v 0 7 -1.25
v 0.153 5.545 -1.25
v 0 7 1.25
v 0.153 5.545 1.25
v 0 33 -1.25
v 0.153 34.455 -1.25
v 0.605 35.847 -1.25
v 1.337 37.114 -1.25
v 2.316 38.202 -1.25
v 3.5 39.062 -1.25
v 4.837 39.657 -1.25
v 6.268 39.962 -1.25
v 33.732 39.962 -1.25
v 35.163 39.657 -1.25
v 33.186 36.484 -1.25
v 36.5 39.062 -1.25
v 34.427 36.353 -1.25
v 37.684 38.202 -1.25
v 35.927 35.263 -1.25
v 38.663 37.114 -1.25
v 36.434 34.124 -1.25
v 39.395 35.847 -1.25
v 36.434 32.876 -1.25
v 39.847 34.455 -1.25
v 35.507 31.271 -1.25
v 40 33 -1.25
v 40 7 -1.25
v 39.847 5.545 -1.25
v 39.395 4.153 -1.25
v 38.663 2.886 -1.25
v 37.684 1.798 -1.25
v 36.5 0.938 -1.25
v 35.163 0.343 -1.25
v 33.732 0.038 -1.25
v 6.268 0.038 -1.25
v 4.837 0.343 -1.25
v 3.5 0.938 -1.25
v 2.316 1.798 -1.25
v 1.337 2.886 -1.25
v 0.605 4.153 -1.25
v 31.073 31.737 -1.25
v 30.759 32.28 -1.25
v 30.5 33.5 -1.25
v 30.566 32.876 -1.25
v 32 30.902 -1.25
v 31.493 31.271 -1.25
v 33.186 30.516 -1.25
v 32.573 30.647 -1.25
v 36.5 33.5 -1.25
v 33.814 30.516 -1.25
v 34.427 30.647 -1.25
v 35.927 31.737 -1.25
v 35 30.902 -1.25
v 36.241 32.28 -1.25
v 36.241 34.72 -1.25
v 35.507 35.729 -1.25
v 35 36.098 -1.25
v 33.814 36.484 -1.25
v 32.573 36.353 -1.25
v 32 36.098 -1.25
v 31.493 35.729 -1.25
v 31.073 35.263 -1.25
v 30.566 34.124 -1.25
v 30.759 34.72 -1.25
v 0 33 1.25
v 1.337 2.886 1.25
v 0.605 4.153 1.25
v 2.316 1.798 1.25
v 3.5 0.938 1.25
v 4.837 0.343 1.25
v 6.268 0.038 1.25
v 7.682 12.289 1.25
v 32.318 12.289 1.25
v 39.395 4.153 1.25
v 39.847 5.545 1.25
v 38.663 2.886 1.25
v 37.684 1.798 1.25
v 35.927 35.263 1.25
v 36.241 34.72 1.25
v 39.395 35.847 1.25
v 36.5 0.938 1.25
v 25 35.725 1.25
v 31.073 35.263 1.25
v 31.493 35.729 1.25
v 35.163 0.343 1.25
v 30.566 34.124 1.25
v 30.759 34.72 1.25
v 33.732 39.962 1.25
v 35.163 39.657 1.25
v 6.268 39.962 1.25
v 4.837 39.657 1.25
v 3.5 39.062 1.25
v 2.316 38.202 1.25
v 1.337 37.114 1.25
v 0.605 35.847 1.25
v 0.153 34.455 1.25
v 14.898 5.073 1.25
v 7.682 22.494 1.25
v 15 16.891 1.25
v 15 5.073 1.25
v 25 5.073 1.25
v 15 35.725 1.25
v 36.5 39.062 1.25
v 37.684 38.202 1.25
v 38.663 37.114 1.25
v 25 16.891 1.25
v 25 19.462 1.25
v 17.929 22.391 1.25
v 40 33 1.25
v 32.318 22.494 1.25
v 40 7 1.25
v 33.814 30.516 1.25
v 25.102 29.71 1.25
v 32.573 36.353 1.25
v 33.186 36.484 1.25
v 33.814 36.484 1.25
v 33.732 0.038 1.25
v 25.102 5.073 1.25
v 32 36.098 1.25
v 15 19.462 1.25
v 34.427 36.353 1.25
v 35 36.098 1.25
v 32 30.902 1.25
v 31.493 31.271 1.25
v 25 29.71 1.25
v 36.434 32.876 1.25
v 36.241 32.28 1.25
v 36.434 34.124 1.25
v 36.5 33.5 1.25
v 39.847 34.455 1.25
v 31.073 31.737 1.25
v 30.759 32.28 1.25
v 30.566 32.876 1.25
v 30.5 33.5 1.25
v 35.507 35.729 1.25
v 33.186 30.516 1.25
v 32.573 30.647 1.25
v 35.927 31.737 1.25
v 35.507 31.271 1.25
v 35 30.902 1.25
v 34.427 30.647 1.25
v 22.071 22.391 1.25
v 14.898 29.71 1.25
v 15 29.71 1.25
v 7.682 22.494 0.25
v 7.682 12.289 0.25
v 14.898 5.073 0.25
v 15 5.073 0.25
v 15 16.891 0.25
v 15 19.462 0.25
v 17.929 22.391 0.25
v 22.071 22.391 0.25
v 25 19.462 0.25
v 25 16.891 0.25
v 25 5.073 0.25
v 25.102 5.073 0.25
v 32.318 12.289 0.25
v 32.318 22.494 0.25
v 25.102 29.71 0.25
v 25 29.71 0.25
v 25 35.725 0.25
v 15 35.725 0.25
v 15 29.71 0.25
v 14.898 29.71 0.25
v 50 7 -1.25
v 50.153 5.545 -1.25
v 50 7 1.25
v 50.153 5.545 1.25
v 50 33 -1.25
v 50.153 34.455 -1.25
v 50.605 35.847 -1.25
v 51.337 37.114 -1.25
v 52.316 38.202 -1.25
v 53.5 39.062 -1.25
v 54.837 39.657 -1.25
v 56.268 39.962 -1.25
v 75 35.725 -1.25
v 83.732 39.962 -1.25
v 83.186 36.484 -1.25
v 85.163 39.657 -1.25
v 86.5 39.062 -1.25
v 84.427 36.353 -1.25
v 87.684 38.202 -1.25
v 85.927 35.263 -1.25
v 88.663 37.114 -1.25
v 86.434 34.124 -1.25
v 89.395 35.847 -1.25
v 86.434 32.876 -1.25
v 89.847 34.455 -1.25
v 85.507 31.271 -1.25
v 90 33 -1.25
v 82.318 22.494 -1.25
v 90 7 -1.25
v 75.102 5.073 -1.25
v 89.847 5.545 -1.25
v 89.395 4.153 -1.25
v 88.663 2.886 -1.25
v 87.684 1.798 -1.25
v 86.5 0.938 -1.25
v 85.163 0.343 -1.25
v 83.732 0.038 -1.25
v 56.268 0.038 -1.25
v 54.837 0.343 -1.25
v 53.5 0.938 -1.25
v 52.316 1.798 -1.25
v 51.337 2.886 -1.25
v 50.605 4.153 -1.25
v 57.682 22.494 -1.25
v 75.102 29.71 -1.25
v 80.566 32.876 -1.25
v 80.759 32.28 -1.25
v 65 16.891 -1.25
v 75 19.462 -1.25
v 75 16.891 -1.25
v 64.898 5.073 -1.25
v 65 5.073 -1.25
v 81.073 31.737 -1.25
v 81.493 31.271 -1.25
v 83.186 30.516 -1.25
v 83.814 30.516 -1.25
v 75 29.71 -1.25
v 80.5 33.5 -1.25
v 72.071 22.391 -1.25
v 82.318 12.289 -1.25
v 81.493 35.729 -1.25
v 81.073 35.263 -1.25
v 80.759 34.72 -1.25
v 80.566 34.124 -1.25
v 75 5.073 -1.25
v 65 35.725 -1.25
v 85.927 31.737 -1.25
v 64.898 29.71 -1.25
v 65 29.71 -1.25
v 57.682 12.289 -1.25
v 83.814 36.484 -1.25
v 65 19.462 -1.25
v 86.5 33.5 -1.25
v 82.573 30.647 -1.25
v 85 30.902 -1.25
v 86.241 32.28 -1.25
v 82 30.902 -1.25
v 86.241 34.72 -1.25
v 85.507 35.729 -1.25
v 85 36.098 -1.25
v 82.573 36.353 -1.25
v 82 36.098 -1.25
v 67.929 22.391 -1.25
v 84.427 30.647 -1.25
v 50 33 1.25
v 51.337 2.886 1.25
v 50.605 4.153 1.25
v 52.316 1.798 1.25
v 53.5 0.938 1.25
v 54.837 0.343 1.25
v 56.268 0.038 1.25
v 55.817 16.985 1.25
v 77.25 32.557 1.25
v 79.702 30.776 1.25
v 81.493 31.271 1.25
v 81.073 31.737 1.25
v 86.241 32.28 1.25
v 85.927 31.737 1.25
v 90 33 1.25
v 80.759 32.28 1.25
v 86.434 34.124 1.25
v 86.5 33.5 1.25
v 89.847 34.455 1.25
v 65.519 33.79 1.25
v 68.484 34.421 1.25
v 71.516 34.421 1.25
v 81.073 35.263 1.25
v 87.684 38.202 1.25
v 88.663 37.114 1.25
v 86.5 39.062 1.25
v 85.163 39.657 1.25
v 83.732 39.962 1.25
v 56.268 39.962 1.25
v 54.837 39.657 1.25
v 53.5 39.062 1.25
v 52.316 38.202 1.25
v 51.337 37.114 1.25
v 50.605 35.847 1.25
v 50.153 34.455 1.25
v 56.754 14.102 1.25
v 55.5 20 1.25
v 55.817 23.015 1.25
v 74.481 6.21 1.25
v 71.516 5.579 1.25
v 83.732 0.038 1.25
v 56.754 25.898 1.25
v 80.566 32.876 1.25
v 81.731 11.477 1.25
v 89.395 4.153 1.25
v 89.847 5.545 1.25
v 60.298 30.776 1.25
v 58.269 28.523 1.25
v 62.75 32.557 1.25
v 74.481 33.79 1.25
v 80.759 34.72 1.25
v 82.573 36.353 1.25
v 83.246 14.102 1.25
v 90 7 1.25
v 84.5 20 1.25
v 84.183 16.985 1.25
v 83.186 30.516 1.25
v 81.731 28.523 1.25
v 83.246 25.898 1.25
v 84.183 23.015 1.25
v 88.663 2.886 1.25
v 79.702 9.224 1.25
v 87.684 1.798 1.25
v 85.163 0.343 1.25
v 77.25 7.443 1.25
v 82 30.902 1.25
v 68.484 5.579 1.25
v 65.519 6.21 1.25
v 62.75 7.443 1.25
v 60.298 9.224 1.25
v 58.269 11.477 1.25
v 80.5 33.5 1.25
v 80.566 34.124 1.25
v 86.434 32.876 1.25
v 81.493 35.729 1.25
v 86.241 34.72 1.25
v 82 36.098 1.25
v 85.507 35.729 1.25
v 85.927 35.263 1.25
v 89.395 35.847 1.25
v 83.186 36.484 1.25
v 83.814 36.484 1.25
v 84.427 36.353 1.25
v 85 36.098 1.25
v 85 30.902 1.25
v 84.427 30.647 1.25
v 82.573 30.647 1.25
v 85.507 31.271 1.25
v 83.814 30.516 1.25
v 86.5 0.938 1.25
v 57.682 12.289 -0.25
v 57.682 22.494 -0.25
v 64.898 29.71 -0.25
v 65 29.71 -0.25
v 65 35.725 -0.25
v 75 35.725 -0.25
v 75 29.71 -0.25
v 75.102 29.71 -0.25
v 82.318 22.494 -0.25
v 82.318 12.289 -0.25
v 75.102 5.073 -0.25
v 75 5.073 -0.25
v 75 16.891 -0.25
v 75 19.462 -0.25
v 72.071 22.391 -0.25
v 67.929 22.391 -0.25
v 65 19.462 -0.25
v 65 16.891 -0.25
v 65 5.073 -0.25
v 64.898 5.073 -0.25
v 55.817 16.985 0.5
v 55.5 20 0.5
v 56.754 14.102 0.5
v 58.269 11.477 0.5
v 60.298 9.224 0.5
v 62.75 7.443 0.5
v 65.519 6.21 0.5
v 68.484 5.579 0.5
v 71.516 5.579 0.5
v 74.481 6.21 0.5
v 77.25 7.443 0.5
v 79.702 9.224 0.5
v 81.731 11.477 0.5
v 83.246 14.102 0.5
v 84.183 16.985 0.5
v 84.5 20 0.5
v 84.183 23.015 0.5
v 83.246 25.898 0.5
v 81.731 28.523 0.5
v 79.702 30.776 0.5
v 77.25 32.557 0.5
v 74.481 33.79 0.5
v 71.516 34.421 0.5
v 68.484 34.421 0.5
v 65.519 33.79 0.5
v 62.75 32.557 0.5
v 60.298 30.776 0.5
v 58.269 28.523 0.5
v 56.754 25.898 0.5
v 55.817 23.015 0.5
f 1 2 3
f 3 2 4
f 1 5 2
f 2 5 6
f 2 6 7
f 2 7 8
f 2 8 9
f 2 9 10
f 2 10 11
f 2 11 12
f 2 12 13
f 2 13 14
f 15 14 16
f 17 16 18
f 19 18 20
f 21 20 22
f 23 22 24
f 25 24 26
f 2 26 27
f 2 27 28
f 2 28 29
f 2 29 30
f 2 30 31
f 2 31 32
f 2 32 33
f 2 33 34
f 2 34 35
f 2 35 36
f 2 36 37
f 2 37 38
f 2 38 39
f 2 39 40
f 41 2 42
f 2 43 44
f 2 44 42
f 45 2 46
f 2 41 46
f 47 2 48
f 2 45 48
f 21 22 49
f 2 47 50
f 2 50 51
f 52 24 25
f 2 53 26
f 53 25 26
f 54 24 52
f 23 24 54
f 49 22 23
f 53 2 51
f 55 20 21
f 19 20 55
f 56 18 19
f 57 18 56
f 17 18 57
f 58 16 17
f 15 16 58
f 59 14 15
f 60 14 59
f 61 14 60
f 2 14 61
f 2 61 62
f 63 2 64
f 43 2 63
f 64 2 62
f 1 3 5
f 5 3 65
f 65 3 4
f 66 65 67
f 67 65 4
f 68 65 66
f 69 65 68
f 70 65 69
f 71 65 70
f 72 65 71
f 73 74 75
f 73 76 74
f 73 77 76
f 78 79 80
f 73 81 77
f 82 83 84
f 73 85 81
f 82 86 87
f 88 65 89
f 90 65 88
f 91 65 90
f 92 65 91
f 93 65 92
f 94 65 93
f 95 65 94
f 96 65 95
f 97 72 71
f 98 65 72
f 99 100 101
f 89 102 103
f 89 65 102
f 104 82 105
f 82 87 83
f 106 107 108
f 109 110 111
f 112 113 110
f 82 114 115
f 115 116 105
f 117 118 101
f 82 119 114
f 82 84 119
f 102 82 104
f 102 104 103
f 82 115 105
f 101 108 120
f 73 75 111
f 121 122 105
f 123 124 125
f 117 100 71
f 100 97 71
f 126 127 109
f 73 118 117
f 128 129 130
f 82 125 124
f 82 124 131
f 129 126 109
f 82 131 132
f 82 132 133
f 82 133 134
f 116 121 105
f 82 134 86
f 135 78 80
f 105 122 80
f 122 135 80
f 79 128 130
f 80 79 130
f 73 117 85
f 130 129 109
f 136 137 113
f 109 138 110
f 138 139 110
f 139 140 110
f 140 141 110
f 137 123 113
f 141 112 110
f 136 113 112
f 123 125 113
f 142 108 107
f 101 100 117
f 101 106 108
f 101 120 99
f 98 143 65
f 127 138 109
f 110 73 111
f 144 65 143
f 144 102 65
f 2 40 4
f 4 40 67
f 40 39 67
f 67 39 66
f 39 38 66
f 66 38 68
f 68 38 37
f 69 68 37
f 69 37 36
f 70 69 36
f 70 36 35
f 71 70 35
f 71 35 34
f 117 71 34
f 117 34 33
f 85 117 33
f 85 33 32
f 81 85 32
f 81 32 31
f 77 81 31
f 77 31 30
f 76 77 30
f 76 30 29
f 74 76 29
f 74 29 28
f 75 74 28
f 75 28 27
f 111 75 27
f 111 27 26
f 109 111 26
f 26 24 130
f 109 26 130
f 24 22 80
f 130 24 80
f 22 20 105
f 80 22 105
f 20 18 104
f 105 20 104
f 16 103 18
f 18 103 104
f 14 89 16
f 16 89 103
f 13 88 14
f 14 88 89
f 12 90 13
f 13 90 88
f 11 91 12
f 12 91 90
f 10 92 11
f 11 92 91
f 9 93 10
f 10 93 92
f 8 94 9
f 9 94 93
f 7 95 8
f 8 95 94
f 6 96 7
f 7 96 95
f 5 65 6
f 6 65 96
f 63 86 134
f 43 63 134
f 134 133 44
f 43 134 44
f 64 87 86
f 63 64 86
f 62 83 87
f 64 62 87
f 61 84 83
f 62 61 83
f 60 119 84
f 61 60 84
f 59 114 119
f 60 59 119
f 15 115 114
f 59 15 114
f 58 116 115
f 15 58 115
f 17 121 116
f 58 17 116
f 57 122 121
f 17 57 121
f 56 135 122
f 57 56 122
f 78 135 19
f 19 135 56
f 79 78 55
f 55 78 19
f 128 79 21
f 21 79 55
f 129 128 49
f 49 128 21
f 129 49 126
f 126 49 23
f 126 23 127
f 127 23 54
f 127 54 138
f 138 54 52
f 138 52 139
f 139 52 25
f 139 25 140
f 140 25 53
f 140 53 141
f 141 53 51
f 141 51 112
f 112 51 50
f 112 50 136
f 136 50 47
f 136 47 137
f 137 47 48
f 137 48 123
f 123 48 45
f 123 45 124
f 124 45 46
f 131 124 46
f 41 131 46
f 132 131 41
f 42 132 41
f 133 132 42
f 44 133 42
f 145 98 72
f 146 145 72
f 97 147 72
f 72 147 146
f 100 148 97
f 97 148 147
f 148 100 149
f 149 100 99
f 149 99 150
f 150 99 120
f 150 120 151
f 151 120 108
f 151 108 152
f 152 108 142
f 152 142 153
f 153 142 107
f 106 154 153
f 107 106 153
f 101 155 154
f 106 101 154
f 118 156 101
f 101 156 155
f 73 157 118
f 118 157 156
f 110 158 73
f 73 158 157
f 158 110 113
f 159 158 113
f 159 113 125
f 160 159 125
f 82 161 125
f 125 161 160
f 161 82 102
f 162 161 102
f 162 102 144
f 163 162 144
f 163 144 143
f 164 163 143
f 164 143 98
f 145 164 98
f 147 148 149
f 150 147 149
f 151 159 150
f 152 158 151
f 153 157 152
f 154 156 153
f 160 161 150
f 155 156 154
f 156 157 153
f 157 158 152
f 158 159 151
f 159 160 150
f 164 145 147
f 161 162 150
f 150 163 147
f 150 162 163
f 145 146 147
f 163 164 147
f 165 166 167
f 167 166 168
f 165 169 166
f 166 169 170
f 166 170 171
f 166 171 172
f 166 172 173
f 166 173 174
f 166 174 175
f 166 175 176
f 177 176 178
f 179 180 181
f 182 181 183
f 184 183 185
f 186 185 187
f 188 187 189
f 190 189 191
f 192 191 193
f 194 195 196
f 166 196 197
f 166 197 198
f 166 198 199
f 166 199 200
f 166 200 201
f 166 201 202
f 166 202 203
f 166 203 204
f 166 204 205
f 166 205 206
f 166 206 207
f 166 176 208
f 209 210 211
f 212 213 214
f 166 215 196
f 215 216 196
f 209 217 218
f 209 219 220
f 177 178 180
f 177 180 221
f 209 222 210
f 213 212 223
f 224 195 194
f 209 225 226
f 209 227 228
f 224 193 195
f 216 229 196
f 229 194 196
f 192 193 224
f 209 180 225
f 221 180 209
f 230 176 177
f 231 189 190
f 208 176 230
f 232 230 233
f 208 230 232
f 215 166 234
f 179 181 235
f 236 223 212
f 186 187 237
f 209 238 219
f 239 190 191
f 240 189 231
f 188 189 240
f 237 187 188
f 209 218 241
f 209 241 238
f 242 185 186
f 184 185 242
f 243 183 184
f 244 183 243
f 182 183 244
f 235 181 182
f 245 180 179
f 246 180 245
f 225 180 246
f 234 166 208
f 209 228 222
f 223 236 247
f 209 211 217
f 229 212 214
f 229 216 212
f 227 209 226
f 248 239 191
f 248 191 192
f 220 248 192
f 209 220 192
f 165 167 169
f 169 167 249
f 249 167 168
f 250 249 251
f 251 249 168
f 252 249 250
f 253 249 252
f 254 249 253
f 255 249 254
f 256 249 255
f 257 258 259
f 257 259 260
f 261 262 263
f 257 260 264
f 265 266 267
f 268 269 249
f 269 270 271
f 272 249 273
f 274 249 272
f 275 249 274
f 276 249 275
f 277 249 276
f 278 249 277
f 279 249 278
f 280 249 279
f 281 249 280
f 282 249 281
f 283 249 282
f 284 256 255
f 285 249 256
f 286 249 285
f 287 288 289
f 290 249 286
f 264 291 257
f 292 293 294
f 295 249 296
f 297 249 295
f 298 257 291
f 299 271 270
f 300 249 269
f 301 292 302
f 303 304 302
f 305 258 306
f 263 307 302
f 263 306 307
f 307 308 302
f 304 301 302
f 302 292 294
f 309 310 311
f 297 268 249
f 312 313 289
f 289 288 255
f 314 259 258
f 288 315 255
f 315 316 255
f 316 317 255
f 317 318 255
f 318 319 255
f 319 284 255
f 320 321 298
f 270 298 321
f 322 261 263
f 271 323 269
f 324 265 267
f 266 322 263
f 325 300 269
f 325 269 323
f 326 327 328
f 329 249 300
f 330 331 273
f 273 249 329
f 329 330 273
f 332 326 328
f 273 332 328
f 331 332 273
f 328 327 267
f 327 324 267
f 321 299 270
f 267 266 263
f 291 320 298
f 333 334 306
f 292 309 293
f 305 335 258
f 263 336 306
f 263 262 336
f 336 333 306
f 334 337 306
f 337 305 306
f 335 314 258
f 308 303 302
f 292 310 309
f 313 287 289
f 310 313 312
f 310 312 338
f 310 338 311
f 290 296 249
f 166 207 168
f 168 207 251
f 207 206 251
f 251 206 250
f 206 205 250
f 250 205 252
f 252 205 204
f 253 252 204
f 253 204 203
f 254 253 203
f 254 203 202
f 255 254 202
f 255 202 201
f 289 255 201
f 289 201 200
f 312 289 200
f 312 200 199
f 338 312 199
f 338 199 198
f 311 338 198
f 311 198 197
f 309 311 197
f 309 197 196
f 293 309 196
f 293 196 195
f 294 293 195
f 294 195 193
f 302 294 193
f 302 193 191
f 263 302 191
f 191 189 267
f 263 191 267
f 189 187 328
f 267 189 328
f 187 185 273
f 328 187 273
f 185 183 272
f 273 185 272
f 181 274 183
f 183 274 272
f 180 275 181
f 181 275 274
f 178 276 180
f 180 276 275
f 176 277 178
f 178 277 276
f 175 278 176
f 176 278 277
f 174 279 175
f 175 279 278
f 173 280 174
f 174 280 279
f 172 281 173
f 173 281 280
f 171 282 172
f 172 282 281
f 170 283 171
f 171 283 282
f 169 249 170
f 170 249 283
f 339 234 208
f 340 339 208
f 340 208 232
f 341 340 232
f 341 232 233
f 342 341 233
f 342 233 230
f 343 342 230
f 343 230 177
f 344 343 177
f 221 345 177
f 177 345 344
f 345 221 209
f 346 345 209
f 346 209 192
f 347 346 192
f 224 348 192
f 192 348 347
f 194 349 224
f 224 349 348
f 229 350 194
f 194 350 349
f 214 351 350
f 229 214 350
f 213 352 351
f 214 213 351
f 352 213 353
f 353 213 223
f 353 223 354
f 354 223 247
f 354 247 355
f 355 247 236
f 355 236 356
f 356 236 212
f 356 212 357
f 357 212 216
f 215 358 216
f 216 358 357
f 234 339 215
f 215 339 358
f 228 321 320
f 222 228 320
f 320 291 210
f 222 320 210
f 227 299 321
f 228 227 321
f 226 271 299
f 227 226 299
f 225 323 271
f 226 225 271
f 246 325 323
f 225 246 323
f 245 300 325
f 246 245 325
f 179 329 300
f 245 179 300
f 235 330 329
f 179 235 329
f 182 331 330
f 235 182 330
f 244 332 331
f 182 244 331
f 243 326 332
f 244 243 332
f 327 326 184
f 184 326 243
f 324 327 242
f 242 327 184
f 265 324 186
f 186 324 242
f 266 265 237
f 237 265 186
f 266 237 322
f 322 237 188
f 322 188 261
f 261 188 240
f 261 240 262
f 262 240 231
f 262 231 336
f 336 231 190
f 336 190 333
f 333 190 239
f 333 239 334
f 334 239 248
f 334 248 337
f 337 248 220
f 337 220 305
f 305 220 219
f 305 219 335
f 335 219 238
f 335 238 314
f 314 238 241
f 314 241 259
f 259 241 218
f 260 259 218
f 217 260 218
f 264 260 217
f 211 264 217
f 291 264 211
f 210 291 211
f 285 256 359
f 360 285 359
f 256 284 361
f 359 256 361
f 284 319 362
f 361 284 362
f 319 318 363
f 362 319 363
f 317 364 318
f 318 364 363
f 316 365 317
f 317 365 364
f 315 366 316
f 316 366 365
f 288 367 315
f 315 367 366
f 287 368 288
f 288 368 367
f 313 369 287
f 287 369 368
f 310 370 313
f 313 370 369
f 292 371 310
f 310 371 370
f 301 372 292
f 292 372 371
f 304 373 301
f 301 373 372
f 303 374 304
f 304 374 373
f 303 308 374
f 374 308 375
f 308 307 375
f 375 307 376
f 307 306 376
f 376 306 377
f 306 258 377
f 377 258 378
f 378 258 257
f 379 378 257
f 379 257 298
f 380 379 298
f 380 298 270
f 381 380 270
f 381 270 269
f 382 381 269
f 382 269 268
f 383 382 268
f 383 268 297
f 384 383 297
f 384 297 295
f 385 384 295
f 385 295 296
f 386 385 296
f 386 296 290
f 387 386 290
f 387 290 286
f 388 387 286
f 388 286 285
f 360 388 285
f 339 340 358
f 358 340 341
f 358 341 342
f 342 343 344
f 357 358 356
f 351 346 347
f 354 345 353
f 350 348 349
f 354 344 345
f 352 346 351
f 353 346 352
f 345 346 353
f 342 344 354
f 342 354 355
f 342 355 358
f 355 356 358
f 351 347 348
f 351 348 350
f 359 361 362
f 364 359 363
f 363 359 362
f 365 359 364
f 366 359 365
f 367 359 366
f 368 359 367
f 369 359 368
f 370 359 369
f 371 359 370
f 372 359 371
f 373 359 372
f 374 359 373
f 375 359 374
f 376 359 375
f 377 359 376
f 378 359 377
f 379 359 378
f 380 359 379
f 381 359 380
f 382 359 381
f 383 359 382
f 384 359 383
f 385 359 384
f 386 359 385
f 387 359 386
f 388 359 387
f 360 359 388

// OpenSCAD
/*
 * So Make It (http://www.somakeit.org.uk/) Logo Key Ring
 *
 * Copyright (c) 2013 Mark Hindess & Bracken Dawson
 * License:
 *   Creative Commons Attribution-ShareAlike 3.0 Unported License
 *   http://creativecommons.org/licenses/by-sa/3.0
 */

thickness = 2.5;
size = 40;
corner_radius = 7;
nfc_tag_radius = 14.5;
hole_radius = 3;
$fn = 30;

module top() {
  difference() {

    // simple rounded square
    hull() {
      translate([corner_radius, corner_radius, 0])
        cylinder(r = corner_radius, h = thickness, center = true);
      translate([size-corner_radius, corner_radius, 0])
        cylinder(r = corner_radius, h = thickness, center = true);
      translate([size-corner_radius, size-corner_radius, 0])
        cylinder(r = corner_radius, h = thickness, center = true);
      translate([corner_radius, size-corner_radius, 0])
        cylinder(r = corner_radius, h = thickness, center = true);
    }
    // slightly off center to allow for "handle"
    translate([size/2, size/2.3, 1.5]) {
      difference() {
        // large octagon
        rotate([0,0,22.5])
          cylinder(r = size/3, h = thickness, center = true, $fn = 8);
  
        // central bar
        translate([0,-(1+size/6),-1])
          cube([size/4, 1+size/3, thickness], center = true);
        // octagonal end of central bar
        rotate([0,0,22.5])
          cylinder(r = size/(8*cos(22.5)), h = thickness,
                   $fn = 8, center = true);
      }
  
      // handle
      translate([0,size/3,0])
        cube([size/4, size/4, thickness], center = true);
   }
  
    // hole for attachment
    translate([size-hole_radius-(corner_radius/2),
               size-hole_radius-(corner_radius/2), 0])
      cylinder(r = hole_radius, h = thickness+2, center = true);
  }
}

module bottom() {
  difference() {

    // simple rounded square
    hull() {
      translate([corner_radius, corner_radius, 0])
        cylinder(r = corner_radius, h = thickness, center = true);
      translate([size-corner_radius, corner_radius, 0])
        cylinder(r = corner_radius, h = thickness, center = true);
      translate([size-corner_radius, size-corner_radius, 0])
        cylinder(r = corner_radius, h = thickness, center = true);
      translate([corner_radius, size-corner_radius, 0])
        cylinder(r = corner_radius, h = thickness, center = true);
    }
    // slightly off center to allow for "handle"
    mirror([0,0,1]) translate([size/2, size/2.3, 1.5]) {
      difference() {
        // large octagon
        rotate([0,0,22.5])
          cylinder(r = size/3, h = thickness, center = true, $fn = 8);
  
        // central bar
        translate([0,-(1+size/6),-1])
          cube([size/4, 1+size/3, thickness], center = true);
        // octagonal end of central bar
        rotate([0,0,22.5])
          cylinder(r = size/(8*cos(22.5)), h = thickness,
                   $fn = 8, center = true);
      }
  
      // handle
      translate([0,size/3,0])
        cube([size/4, size/4, thickness], center = true);
    }

    // Relief for NFC tag

    translate([size/2, size/2, 1.5]) cylinder(r = nfc_tag_radius, h = 2, center = true);
  
    // hole for attachment
    translate([size-hole_radius-(corner_radius/2),
               size-hole_radius-(corner_radius/2), 0])
      cylinder(r = hole_radius, h = thickness+2, center = true);
  }
}

top();
translate([size + 10, 0, 0]) bottom();
